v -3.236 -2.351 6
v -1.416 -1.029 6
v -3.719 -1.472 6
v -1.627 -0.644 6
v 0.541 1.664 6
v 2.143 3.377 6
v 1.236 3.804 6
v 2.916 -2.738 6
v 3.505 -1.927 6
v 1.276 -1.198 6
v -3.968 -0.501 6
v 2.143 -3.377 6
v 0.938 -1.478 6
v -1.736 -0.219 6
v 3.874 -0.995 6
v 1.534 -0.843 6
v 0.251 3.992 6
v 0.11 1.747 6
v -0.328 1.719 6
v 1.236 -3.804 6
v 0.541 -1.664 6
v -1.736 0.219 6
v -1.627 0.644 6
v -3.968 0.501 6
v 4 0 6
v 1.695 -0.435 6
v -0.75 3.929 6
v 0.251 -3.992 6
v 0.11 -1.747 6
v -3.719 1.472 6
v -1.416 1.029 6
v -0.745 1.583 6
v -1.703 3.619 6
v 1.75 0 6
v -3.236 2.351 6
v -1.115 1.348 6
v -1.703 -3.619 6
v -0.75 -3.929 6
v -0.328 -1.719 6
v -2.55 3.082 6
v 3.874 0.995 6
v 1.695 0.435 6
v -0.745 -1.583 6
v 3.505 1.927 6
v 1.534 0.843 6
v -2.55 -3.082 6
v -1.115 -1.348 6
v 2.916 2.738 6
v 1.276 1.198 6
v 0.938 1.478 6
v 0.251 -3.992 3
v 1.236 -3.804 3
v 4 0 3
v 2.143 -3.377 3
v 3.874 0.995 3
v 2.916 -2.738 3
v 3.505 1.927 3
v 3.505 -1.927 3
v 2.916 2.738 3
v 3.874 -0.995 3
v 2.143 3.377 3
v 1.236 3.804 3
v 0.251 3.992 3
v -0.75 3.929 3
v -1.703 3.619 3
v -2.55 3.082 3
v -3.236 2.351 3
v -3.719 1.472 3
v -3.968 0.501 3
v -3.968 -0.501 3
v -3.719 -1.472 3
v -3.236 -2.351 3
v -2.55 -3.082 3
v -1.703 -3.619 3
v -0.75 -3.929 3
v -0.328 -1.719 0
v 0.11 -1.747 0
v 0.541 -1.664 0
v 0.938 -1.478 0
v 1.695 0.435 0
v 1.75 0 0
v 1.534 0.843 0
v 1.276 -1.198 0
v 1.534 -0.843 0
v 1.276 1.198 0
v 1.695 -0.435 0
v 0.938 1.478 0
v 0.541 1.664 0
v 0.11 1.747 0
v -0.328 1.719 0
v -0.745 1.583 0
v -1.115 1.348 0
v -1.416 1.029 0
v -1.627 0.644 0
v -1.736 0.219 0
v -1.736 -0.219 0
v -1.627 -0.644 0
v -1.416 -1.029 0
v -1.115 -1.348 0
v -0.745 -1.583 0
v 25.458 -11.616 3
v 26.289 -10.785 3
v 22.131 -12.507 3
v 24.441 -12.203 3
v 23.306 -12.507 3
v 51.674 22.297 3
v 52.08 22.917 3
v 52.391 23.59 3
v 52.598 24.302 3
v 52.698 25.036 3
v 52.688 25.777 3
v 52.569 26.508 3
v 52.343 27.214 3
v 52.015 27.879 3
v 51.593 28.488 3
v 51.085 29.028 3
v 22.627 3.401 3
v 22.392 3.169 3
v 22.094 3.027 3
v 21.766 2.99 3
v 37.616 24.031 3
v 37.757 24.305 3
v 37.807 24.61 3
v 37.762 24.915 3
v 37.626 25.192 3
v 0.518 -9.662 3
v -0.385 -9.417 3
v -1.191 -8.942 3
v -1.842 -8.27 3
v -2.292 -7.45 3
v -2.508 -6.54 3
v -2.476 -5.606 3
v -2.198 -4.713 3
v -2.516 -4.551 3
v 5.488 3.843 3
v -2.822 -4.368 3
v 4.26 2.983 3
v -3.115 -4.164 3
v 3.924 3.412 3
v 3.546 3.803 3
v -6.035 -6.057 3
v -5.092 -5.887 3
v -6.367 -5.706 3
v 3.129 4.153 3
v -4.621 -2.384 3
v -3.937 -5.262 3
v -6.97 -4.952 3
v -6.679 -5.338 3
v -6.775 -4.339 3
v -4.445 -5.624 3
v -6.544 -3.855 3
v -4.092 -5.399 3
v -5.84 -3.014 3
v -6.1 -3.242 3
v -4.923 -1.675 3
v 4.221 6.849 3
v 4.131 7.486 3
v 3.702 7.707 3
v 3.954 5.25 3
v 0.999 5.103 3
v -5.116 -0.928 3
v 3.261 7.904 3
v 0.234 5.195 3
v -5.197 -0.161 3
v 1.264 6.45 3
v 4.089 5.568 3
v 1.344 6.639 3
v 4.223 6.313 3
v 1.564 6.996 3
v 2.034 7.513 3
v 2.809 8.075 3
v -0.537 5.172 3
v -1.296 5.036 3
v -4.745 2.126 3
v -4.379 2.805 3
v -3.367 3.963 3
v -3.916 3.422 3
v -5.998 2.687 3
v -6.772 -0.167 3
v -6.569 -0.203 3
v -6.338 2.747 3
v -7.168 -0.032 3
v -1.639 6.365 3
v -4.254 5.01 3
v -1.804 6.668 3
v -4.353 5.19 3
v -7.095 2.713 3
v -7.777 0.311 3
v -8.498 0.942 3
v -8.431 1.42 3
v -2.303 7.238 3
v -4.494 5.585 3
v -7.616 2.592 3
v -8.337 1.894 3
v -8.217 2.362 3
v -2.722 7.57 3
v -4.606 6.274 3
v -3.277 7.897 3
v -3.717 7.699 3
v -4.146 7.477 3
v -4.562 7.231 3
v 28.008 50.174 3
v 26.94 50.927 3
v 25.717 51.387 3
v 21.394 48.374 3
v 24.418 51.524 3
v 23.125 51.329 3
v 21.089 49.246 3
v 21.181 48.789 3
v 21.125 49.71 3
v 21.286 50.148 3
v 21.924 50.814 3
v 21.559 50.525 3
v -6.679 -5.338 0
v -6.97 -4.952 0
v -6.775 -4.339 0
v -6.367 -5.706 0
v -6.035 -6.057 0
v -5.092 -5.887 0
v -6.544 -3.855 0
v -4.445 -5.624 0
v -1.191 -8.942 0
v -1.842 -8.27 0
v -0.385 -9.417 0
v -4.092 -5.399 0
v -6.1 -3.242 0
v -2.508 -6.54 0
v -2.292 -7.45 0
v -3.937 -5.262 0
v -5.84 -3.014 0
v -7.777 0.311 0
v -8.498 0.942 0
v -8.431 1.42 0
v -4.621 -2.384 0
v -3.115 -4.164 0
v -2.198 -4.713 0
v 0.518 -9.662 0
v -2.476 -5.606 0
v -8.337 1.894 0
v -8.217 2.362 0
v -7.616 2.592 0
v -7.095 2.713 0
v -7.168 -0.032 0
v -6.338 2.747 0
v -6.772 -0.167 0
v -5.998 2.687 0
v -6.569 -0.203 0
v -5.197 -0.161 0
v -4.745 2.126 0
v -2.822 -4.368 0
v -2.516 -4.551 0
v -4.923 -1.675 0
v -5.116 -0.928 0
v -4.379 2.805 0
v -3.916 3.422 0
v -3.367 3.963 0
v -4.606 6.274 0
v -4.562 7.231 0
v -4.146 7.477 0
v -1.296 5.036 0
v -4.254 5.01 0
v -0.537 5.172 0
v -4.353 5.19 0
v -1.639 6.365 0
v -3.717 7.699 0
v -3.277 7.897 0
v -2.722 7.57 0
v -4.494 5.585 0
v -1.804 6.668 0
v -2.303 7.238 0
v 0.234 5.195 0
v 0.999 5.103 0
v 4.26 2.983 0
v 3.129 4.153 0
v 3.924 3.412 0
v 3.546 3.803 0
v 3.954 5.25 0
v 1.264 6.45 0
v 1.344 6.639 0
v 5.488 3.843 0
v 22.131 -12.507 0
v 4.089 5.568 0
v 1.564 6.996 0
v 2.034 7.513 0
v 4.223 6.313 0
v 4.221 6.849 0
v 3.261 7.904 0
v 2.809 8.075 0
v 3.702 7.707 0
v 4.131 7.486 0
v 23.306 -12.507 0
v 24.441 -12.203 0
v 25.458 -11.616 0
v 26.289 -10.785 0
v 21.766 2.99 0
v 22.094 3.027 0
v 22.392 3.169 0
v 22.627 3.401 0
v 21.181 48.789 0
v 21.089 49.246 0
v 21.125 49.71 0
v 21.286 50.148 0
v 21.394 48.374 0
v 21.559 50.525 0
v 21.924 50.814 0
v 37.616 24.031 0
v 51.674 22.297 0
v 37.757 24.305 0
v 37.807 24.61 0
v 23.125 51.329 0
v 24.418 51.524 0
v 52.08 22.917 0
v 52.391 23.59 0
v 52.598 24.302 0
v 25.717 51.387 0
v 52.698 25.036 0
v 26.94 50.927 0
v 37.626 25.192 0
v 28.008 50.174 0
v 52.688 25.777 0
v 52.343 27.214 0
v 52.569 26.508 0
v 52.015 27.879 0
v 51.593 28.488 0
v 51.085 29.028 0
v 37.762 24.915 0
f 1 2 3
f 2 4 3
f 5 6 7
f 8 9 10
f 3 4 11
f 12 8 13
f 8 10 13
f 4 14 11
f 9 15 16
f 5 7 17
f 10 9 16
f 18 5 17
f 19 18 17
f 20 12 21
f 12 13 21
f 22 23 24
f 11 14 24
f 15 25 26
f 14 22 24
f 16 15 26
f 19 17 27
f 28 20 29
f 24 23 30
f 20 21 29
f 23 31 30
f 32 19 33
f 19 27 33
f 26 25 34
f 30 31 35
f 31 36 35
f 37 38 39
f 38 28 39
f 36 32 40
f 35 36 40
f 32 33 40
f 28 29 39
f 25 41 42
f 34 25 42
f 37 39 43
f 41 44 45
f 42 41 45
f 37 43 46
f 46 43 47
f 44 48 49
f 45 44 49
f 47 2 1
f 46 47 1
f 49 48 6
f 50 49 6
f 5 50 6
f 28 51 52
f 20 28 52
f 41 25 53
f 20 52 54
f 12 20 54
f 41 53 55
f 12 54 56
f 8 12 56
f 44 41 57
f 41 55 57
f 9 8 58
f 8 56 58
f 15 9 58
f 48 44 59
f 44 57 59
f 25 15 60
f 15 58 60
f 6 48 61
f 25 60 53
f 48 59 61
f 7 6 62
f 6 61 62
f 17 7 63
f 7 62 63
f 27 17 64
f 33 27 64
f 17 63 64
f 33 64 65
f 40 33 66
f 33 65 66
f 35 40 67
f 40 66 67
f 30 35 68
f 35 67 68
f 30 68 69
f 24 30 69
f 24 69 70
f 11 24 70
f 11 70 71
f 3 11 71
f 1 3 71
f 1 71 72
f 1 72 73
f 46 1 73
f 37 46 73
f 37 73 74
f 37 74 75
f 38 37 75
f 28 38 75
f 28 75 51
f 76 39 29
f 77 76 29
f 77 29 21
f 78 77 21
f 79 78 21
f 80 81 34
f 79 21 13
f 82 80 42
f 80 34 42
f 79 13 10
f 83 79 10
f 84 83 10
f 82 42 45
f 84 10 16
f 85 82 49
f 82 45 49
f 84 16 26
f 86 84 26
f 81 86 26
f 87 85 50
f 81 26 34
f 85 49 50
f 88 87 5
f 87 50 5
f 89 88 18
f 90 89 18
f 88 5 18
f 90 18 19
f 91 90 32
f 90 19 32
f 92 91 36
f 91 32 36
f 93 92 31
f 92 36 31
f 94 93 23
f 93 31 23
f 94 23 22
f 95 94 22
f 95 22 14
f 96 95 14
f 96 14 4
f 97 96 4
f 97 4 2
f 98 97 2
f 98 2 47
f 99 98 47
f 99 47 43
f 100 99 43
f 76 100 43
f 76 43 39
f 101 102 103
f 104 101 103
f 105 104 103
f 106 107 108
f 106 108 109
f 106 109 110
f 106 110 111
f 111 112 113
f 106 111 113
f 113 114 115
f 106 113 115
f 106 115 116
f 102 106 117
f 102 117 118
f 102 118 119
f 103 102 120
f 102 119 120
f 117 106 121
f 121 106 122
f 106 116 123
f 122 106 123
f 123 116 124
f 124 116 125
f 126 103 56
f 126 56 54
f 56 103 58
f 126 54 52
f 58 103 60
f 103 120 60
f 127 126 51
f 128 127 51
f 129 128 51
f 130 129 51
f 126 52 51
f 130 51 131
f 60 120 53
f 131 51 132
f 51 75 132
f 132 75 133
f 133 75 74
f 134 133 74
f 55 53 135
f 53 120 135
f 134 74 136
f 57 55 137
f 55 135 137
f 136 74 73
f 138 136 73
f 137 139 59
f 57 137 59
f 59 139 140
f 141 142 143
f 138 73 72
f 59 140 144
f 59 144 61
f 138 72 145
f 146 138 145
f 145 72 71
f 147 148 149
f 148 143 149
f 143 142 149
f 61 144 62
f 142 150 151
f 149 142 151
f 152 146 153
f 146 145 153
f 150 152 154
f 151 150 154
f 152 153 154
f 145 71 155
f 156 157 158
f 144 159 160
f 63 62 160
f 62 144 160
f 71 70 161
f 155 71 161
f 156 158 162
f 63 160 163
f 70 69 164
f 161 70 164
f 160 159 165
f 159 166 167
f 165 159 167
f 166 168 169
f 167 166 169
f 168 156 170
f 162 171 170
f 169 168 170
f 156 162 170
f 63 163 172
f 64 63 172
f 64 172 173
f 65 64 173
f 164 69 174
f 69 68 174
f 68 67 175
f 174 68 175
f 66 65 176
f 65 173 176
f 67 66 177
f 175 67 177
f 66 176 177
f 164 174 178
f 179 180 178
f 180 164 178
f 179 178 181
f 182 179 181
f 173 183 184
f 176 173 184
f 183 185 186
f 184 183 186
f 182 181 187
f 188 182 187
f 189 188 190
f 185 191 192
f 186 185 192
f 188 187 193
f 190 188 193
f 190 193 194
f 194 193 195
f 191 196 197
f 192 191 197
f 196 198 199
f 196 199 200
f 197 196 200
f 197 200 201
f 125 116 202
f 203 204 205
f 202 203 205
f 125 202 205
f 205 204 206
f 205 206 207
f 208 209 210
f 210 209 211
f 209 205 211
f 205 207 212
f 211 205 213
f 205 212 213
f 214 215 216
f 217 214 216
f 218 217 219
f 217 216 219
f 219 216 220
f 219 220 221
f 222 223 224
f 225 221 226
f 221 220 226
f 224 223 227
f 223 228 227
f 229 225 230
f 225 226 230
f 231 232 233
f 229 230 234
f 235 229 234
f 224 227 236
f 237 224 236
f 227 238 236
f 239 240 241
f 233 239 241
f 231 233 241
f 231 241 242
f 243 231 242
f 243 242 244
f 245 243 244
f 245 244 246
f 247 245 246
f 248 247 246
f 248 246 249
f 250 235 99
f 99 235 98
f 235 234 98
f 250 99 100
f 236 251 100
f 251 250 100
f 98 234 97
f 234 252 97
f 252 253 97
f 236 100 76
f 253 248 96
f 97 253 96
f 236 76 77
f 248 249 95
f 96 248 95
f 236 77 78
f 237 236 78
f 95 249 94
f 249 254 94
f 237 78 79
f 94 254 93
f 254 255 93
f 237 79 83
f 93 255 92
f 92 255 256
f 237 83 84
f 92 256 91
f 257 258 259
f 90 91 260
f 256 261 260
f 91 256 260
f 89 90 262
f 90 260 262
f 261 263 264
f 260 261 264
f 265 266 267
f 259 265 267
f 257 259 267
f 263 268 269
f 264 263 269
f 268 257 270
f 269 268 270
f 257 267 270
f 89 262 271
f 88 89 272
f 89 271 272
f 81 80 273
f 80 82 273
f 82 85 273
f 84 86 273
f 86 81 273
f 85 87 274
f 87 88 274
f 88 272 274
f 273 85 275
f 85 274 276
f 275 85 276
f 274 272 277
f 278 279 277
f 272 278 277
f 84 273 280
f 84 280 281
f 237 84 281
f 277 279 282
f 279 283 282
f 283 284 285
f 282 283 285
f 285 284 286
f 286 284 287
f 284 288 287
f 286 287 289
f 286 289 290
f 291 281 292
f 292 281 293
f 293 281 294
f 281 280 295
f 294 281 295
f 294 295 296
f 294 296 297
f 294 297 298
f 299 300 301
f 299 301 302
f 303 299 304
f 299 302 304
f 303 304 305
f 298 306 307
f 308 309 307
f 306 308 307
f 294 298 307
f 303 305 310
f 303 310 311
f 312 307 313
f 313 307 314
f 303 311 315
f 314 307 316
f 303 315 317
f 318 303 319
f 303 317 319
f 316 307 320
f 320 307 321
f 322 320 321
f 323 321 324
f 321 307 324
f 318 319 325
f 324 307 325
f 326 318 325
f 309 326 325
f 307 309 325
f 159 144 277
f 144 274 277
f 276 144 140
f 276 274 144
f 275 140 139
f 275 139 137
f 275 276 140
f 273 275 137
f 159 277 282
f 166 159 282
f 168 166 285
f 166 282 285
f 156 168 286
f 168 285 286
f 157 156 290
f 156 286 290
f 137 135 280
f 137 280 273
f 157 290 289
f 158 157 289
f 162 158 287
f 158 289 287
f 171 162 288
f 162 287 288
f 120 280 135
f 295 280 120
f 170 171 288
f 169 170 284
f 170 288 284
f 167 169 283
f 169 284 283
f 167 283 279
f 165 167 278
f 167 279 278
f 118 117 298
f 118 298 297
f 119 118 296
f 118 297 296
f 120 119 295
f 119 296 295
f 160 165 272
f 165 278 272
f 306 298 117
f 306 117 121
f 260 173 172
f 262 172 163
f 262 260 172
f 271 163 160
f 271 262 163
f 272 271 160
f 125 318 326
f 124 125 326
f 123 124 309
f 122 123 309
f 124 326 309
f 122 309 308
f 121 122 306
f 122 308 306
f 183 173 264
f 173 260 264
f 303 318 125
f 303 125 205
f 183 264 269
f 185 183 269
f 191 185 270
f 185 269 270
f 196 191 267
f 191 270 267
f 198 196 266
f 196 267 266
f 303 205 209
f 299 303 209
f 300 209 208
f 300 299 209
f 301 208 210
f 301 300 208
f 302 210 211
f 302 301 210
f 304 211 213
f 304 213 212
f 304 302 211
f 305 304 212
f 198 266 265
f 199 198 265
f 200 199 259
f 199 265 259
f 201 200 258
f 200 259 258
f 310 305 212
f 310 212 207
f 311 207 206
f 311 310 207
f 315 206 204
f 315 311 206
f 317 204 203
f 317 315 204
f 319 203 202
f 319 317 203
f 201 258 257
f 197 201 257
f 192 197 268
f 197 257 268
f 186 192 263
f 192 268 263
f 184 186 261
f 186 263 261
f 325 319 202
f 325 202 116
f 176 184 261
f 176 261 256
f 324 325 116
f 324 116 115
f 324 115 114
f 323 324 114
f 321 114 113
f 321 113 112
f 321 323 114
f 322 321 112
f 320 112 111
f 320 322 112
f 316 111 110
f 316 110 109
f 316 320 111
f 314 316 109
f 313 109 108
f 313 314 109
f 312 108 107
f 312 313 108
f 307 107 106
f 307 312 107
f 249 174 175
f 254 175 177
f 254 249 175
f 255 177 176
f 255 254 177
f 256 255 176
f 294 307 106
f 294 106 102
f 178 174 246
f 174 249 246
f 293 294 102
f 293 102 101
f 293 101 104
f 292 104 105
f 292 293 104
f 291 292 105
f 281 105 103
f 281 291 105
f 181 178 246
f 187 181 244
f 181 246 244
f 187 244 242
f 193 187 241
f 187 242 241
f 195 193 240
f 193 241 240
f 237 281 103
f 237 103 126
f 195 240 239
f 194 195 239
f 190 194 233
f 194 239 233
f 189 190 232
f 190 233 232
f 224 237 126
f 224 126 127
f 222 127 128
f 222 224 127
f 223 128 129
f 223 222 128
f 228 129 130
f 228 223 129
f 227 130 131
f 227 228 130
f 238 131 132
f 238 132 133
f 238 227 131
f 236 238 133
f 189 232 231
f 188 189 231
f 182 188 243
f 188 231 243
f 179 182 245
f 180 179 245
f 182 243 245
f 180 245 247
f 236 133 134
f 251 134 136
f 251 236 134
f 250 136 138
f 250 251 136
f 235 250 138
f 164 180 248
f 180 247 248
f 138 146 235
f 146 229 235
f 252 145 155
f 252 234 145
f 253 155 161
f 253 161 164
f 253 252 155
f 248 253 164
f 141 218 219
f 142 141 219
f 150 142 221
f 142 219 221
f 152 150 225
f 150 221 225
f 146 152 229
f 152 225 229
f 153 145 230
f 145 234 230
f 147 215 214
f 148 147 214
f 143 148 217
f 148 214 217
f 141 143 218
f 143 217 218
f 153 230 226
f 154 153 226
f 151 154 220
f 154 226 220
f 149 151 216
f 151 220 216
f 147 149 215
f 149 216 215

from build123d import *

# Parameters (mm, degrees)
PAD_DEPTH                                 = 3
EXTRUDE_DEPTH                             = 3
EXTRUDE_ONTO_INVOLUTEGEAR_PLACEMENT_ANGLE = -15
EXTRUDE_PLACEMENT_ANGLE                   = 29.533929
SKETCH001_R                               = 4
PAD001_DEPTH                              = 3
SKETCH002_R                               = 1.75
POCKET001_DEPTH                           = 6.001


with BuildPart() as claw_body:
    # Sketch → Pad (new body)
    with BuildSketch(Plane.XY):
        with BuildLine():
            ThreePointArc((2.197615, -4.7128), (3.983431, 3.342496), (-4.259591, 2.982597))
            Line((-5.488319, 3.842962), (-4.259591, 2.982597))
            Line((-5.488319, 3.842962), (-21.76598, 2.989886))
            ThreePointArc((-22.627333, 3.40073), (-22.248827, 3.08593), (-21.76598, 2.989886))
            Line((-22.627333, 3.40073), (-37.615857, 24.030664))
            ThreePointArc((-37.625992, 25.192025), (-37.806802, 24.609722), (-37.615857, 24.030664))
            Line((-37.625992, 25.192025), (-21.393779, 48.374028))
            ThreePointArc((-21.393779, 48.374028), (-21.125112, 49.710122), (-21.924071, 50.814201))
            ThreePointArc((-21.924071, 50.814201), (-25.071791, 51.496726), (-28.008332, 50.173585))
            Line((-28.008332, 50.173585), (-51.085112, 29.027611))
            ThreePointArc((-51.085112, 29.027611), (-52.688135, 25.777003), (-51.673928, 22.297417))
            Line((-51.673928, 22.297417), (-26.288576, -10.785417))
            ThreePointArc((-26.288576, -10.785417), (-24.440562, -12.203448), (-22.131119, -12.507492))
            Line((-22.131119, -12.507492), (-0.517621, -9.662021))
            ThreePointArc((-0.517621, -9.662021), (2.094081, -7.875425), (2.197615, -4.7128))
        make_face()
    extrude(amount=PAD_DEPTH)


with BuildPart() as part_mirroring:
    # Part__Mirroring: instance of claw-body
    add(claw_body.part.mirror(Plane(origin=(0, 0, 0), x_dir=(0, -1, 0), z_dir=(1, 0, 0))))


with BuildPart() as drill:
    # InvoluteGear as drawn → Extrude (new)
    with BuildSketch(Plane.XY):
        with BuildLine():
            Line((4.810602, -1.107072), (6.405135, -1.472675))
            add(Edge.make_bspline(
                [(6.405135, -1.472675), (6.508382, -1.483345), (6.922829, -1.512197), (7.670072, -1.341281), (8.519169, -0.723794)],
                knots=[0, 0, 0, 0, 0, 1, 1, 1, 1, 1], degree=4))
            ThreePointArc((8.519169, -0.723794), (8.54986, 0), (8.519169, 0.723794))
            add(Edge.make_bspline(
                [(8.519169, 0.723794), (7.670072, 1.341281), (6.922829, 1.512197), (6.508382, 1.483345), (6.405135, 1.472675)],
                knots=[0, 0, 0, 0, 0, 1, 1, 1, 1, 1], degree=4))
            Line((6.405135, 1.472675), (4.810602, 1.107072))
            ThreePointArc((4.810602, 1.107072), (4.31977, 1.170473), (3.988644, 1.538293))
            ThreePointArc((3.988644, 1.538293), (3.851642, 1.854853), (3.689565, 2.159338))
            ThreePointArc((3.689565, 2.159338), (3.608445, 2.647554), (3.864905, 3.070832))
            Line((3.864905, 3.070832), (5.14492, 4.089539))
            add(Edge.make_bspline(
                [(5.14492, 4.089539), (5.217636, 4.163608), (5.498597, 4.469646), (5.830867, 5.160429), (5.8775, 6.209276)],
                knots=[0, 0, 0, 0, 0, 1, 1, 1, 1, 1], degree=4))
            ThreePointArc((5.8775, 6.209276), (5.330751, 6.68455), (4.74573, 7.111832))
            add(Edge.make_bspline(
                [(4.74573, 7.111832), (3.733556, 6.832978), (3.13403, 6.355326), (2.898184, 6.013309), (2.842153, 5.925934)],
                knots=[0, 0, 0, 0, 0, 1, 1, 1, 1, 1], degree=4))
            Line((2.842153, 5.925934), (2.133817, 4.451328))
            ThreePointArc((2.133817, 4.451328), (1.77822, 4.10711), (1.284193, 4.077557))
            ThreePointArc((1.284193, 4.077557), (0.951277, 4.167817), (0.612168, 4.230943))
            ThreePointArc((0.612168, 4.230943), (0.179887, 4.471919), (0.008856, 4.936337))
            Line((0.008856, 4.936337), (0.010475, 6.572246))
            add(Edge.make_bspline(
                [(0.010475, 6.572246), (-0.002097, 6.675279), (-0.066191, 7.085755), (-0.3991, 7.77623), (-1.190047, 8.466635)],
                knots=[0, 0, 0, 0, 0, 1, 1, 1, 1, 1], degree=4))
            ThreePointArc((-1.190047, 8.466635), (-1.902523, 8.335497), (-2.60134, 8.144516))
            add(Edge.make_bspline(
                [(-2.60134, 8.144516), (-3.014403, 7.179304), (-3.014758, 6.412764), (-2.894406, 6.015128), (-2.861029, 5.916844)],
                knots=[0, 0, 0, 0, 0, 1, 1, 1, 1, 1], degree=4))
            Line((-2.861029, 5.916844), (-2.149775, 4.443643))
            ThreePointArc((-2.149775, 4.443643), (-2.102366, 3.951009), (-2.387281, 3.546338))
            ThreePointArc((-2.387281, 3.546338), (-2.665419, 3.34233), (-2.926204, 3.116562))
            ThreePointArc((-2.926204, 3.116562), (-3.384129, 2.928837), (-3.853862, 3.08468))
            Line((-3.853862, 3.08468), (-5.131858, 4.105918))
            add(Edge.make_bspline(
                [(-5.131858, 4.105918), (-5.220251, 4.160329), (-5.581136, 4.366146), (-6.328536, 4.536371), (-7.361464, 4.348444)],
                knots=[0, 0, 0, 0, 0, 1, 1, 1, 1, 1], degree=4))
            ThreePointArc((-7.361464, 4.348444), (-7.703158, 3.709645), (-7.989548, 3.044213))
            add(Edge.make_bspline(
                [(-7.989548, 3.044213), (-7.492456, 2.119467), (-6.893372, 1.64126), (-6.507449, 1.487434), (-6.409797, 1.45225)],
                knots=[0, 0, 0, 0, 0, 1, 1, 1, 1, 1], degree=4))
            Line((-6.409797, 1.45225), (-4.814543, 1.089804))
            ThreePointArc((-4.814543, 1.089804), (-4.399827, 0.819718), (-4.261084, 0.344654))
            ThreePointArc((-4.261084, 0.344654), (-4.275, 0), (-4.261084, -0.344654))
            ThreePointArc((-4.261084, -0.344654), (-4.399827, -0.819718), (-4.814543, -1.089804))
            Line((-4.814543, -1.089804), (-6.409797, -1.45225))
            add(Edge.make_bspline(
                [(-6.409797, -1.45225), (-6.507449, -1.487434), (-6.893372, -1.64126), (-7.492456, -2.119467), (-7.989548, -3.044213)],
                knots=[0, 0, 0, 0, 0, 1, 1, 1, 1, 1], degree=4))
            ThreePointArc((-7.989548, -3.044213), (-7.703158, -3.709645), (-7.361464, -4.348444))
            add(Edge.make_bspline(
                [(-7.361464, -4.348444), (-6.328536, -4.536371), (-5.581136, -4.366146), (-5.220251, -4.160329), (-5.131858, -4.105918)],
                knots=[0, 0, 0, 0, 0, 1, 1, 1, 1, 1], degree=4))
            Line((-5.131858, -4.105918), (-3.853862, -3.08468))
            ThreePointArc((-3.853862, -3.08468), (-3.384129, -2.928837), (-2.926204, -3.116562))
            ThreePointArc((-2.926204, -3.116562), (-2.665419, -3.34233), (-2.387281, -3.546338))
            ThreePointArc((-2.387281, -3.546338), (-2.102366, -3.951009), (-2.149775, -4.443643))
            Line((-2.149775, -4.443643), (-2.861029, -5.916844))
            add(Edge.make_bspline(
                [(-2.861029, -5.916844), (-2.894406, -6.015128), (-3.014758, -6.412764), (-3.014403, -7.179304), (-2.60134, -8.144516)],
                knots=[0, 0, 0, 0, 0, 1, 1, 1, 1, 1], degree=4))
            ThreePointArc((-2.60134, -8.144516), (-1.902523, -8.335497), (-1.190047, -8.466635))
            add(Edge.make_bspline(
                [(-1.190047, -8.466635), (-0.3991, -7.77623), (-0.066191, -7.085755), (-0.002097, -6.675279), (0.010475, -6.572246)],
                knots=[0, 0, 0, 0, 0, 1, 1, 1, 1, 1], degree=4))
            Line((0.010475, -6.572246), (0.008856, -4.936337))
            ThreePointArc((0.008856, -4.936337), (0.179887, -4.471919), (0.612168, -4.230943))
            ThreePointArc((0.612168, -4.230943), (0.951277, -4.167817), (1.284193, -4.077557))
            ThreePointArc((1.284193, -4.077557), (1.77822, -4.10711), (2.133817, -4.451328))
            Line((2.133817, -4.451328), (2.842153, -5.925934))
            add(Edge.make_bspline(
                [(2.842153, -5.925934), (2.898184, -6.013309), (3.13403, -6.355326), (3.733556, -6.832978), (4.74573, -7.111832)],
                knots=[0, 0, 0, 0, 0, 1, 1, 1, 1, 1], degree=4))
            ThreePointArc((4.74573, -7.111832), (5.330751, -6.68455), (5.8775, -6.209276))
            add(Edge.make_bspline(
                [(5.8775, -6.209276), (5.830867, -5.160429), (5.498597, -4.469646), (5.217636, -4.163608), (5.14492, -4.089539)],
                knots=[0, 0, 0, 0, 0, 1, 1, 1, 1, 1], degree=4))
            Line((5.14492, -4.089539), (3.864905, -3.070832))
            ThreePointArc((3.864905, -3.070832), (3.608445, -2.647554), (3.689565, -2.159338))
            ThreePointArc((3.689565, -2.159338), (3.851642, -1.854853), (3.988644, -1.538293))
            ThreePointArc((3.988644, -1.538293), (4.31977, -1.170473), (4.810602, -1.107072))
        make_face()
    extrude(amount=EXTRUDE_DEPTH)


with BuildPart() as drill_1:
    # Extrude onto InvoluteGear placement: moved
    add(drill.part.rotate(Axis((0, 0, 0), (0, 0, 1)), EXTRUDE_ONTO_INVOLUTEGEAR_PLACEMENT_ANGLE))


with BuildPart() as drill_2:
    # Extrude placement: moved
    add(drill_1.part.rotate(Axis((0, 0, 0), (0, 0, 1)), EXTRUDE_PLACEMENT_ANGLE))

    # Fusion001: union Part__Mirroring
    add(part_mirroring.part)

    # Sketch001 → Pad001 (new body)
    with BuildSketch(Plane.XY.offset(3)):
        Circle(SKETCH001_R)
    extrude(amount=PAD001_DEPTH)

    # Sketch002 → Pocket001 (cut, through all)
    with BuildSketch(Plane.XY.offset(6)):
        Circle(SKETCH002_R)
    extrude(amount=-POCKET001_DEPTH, mode=Mode.SUBTRACT)


solid = drill_2.part
